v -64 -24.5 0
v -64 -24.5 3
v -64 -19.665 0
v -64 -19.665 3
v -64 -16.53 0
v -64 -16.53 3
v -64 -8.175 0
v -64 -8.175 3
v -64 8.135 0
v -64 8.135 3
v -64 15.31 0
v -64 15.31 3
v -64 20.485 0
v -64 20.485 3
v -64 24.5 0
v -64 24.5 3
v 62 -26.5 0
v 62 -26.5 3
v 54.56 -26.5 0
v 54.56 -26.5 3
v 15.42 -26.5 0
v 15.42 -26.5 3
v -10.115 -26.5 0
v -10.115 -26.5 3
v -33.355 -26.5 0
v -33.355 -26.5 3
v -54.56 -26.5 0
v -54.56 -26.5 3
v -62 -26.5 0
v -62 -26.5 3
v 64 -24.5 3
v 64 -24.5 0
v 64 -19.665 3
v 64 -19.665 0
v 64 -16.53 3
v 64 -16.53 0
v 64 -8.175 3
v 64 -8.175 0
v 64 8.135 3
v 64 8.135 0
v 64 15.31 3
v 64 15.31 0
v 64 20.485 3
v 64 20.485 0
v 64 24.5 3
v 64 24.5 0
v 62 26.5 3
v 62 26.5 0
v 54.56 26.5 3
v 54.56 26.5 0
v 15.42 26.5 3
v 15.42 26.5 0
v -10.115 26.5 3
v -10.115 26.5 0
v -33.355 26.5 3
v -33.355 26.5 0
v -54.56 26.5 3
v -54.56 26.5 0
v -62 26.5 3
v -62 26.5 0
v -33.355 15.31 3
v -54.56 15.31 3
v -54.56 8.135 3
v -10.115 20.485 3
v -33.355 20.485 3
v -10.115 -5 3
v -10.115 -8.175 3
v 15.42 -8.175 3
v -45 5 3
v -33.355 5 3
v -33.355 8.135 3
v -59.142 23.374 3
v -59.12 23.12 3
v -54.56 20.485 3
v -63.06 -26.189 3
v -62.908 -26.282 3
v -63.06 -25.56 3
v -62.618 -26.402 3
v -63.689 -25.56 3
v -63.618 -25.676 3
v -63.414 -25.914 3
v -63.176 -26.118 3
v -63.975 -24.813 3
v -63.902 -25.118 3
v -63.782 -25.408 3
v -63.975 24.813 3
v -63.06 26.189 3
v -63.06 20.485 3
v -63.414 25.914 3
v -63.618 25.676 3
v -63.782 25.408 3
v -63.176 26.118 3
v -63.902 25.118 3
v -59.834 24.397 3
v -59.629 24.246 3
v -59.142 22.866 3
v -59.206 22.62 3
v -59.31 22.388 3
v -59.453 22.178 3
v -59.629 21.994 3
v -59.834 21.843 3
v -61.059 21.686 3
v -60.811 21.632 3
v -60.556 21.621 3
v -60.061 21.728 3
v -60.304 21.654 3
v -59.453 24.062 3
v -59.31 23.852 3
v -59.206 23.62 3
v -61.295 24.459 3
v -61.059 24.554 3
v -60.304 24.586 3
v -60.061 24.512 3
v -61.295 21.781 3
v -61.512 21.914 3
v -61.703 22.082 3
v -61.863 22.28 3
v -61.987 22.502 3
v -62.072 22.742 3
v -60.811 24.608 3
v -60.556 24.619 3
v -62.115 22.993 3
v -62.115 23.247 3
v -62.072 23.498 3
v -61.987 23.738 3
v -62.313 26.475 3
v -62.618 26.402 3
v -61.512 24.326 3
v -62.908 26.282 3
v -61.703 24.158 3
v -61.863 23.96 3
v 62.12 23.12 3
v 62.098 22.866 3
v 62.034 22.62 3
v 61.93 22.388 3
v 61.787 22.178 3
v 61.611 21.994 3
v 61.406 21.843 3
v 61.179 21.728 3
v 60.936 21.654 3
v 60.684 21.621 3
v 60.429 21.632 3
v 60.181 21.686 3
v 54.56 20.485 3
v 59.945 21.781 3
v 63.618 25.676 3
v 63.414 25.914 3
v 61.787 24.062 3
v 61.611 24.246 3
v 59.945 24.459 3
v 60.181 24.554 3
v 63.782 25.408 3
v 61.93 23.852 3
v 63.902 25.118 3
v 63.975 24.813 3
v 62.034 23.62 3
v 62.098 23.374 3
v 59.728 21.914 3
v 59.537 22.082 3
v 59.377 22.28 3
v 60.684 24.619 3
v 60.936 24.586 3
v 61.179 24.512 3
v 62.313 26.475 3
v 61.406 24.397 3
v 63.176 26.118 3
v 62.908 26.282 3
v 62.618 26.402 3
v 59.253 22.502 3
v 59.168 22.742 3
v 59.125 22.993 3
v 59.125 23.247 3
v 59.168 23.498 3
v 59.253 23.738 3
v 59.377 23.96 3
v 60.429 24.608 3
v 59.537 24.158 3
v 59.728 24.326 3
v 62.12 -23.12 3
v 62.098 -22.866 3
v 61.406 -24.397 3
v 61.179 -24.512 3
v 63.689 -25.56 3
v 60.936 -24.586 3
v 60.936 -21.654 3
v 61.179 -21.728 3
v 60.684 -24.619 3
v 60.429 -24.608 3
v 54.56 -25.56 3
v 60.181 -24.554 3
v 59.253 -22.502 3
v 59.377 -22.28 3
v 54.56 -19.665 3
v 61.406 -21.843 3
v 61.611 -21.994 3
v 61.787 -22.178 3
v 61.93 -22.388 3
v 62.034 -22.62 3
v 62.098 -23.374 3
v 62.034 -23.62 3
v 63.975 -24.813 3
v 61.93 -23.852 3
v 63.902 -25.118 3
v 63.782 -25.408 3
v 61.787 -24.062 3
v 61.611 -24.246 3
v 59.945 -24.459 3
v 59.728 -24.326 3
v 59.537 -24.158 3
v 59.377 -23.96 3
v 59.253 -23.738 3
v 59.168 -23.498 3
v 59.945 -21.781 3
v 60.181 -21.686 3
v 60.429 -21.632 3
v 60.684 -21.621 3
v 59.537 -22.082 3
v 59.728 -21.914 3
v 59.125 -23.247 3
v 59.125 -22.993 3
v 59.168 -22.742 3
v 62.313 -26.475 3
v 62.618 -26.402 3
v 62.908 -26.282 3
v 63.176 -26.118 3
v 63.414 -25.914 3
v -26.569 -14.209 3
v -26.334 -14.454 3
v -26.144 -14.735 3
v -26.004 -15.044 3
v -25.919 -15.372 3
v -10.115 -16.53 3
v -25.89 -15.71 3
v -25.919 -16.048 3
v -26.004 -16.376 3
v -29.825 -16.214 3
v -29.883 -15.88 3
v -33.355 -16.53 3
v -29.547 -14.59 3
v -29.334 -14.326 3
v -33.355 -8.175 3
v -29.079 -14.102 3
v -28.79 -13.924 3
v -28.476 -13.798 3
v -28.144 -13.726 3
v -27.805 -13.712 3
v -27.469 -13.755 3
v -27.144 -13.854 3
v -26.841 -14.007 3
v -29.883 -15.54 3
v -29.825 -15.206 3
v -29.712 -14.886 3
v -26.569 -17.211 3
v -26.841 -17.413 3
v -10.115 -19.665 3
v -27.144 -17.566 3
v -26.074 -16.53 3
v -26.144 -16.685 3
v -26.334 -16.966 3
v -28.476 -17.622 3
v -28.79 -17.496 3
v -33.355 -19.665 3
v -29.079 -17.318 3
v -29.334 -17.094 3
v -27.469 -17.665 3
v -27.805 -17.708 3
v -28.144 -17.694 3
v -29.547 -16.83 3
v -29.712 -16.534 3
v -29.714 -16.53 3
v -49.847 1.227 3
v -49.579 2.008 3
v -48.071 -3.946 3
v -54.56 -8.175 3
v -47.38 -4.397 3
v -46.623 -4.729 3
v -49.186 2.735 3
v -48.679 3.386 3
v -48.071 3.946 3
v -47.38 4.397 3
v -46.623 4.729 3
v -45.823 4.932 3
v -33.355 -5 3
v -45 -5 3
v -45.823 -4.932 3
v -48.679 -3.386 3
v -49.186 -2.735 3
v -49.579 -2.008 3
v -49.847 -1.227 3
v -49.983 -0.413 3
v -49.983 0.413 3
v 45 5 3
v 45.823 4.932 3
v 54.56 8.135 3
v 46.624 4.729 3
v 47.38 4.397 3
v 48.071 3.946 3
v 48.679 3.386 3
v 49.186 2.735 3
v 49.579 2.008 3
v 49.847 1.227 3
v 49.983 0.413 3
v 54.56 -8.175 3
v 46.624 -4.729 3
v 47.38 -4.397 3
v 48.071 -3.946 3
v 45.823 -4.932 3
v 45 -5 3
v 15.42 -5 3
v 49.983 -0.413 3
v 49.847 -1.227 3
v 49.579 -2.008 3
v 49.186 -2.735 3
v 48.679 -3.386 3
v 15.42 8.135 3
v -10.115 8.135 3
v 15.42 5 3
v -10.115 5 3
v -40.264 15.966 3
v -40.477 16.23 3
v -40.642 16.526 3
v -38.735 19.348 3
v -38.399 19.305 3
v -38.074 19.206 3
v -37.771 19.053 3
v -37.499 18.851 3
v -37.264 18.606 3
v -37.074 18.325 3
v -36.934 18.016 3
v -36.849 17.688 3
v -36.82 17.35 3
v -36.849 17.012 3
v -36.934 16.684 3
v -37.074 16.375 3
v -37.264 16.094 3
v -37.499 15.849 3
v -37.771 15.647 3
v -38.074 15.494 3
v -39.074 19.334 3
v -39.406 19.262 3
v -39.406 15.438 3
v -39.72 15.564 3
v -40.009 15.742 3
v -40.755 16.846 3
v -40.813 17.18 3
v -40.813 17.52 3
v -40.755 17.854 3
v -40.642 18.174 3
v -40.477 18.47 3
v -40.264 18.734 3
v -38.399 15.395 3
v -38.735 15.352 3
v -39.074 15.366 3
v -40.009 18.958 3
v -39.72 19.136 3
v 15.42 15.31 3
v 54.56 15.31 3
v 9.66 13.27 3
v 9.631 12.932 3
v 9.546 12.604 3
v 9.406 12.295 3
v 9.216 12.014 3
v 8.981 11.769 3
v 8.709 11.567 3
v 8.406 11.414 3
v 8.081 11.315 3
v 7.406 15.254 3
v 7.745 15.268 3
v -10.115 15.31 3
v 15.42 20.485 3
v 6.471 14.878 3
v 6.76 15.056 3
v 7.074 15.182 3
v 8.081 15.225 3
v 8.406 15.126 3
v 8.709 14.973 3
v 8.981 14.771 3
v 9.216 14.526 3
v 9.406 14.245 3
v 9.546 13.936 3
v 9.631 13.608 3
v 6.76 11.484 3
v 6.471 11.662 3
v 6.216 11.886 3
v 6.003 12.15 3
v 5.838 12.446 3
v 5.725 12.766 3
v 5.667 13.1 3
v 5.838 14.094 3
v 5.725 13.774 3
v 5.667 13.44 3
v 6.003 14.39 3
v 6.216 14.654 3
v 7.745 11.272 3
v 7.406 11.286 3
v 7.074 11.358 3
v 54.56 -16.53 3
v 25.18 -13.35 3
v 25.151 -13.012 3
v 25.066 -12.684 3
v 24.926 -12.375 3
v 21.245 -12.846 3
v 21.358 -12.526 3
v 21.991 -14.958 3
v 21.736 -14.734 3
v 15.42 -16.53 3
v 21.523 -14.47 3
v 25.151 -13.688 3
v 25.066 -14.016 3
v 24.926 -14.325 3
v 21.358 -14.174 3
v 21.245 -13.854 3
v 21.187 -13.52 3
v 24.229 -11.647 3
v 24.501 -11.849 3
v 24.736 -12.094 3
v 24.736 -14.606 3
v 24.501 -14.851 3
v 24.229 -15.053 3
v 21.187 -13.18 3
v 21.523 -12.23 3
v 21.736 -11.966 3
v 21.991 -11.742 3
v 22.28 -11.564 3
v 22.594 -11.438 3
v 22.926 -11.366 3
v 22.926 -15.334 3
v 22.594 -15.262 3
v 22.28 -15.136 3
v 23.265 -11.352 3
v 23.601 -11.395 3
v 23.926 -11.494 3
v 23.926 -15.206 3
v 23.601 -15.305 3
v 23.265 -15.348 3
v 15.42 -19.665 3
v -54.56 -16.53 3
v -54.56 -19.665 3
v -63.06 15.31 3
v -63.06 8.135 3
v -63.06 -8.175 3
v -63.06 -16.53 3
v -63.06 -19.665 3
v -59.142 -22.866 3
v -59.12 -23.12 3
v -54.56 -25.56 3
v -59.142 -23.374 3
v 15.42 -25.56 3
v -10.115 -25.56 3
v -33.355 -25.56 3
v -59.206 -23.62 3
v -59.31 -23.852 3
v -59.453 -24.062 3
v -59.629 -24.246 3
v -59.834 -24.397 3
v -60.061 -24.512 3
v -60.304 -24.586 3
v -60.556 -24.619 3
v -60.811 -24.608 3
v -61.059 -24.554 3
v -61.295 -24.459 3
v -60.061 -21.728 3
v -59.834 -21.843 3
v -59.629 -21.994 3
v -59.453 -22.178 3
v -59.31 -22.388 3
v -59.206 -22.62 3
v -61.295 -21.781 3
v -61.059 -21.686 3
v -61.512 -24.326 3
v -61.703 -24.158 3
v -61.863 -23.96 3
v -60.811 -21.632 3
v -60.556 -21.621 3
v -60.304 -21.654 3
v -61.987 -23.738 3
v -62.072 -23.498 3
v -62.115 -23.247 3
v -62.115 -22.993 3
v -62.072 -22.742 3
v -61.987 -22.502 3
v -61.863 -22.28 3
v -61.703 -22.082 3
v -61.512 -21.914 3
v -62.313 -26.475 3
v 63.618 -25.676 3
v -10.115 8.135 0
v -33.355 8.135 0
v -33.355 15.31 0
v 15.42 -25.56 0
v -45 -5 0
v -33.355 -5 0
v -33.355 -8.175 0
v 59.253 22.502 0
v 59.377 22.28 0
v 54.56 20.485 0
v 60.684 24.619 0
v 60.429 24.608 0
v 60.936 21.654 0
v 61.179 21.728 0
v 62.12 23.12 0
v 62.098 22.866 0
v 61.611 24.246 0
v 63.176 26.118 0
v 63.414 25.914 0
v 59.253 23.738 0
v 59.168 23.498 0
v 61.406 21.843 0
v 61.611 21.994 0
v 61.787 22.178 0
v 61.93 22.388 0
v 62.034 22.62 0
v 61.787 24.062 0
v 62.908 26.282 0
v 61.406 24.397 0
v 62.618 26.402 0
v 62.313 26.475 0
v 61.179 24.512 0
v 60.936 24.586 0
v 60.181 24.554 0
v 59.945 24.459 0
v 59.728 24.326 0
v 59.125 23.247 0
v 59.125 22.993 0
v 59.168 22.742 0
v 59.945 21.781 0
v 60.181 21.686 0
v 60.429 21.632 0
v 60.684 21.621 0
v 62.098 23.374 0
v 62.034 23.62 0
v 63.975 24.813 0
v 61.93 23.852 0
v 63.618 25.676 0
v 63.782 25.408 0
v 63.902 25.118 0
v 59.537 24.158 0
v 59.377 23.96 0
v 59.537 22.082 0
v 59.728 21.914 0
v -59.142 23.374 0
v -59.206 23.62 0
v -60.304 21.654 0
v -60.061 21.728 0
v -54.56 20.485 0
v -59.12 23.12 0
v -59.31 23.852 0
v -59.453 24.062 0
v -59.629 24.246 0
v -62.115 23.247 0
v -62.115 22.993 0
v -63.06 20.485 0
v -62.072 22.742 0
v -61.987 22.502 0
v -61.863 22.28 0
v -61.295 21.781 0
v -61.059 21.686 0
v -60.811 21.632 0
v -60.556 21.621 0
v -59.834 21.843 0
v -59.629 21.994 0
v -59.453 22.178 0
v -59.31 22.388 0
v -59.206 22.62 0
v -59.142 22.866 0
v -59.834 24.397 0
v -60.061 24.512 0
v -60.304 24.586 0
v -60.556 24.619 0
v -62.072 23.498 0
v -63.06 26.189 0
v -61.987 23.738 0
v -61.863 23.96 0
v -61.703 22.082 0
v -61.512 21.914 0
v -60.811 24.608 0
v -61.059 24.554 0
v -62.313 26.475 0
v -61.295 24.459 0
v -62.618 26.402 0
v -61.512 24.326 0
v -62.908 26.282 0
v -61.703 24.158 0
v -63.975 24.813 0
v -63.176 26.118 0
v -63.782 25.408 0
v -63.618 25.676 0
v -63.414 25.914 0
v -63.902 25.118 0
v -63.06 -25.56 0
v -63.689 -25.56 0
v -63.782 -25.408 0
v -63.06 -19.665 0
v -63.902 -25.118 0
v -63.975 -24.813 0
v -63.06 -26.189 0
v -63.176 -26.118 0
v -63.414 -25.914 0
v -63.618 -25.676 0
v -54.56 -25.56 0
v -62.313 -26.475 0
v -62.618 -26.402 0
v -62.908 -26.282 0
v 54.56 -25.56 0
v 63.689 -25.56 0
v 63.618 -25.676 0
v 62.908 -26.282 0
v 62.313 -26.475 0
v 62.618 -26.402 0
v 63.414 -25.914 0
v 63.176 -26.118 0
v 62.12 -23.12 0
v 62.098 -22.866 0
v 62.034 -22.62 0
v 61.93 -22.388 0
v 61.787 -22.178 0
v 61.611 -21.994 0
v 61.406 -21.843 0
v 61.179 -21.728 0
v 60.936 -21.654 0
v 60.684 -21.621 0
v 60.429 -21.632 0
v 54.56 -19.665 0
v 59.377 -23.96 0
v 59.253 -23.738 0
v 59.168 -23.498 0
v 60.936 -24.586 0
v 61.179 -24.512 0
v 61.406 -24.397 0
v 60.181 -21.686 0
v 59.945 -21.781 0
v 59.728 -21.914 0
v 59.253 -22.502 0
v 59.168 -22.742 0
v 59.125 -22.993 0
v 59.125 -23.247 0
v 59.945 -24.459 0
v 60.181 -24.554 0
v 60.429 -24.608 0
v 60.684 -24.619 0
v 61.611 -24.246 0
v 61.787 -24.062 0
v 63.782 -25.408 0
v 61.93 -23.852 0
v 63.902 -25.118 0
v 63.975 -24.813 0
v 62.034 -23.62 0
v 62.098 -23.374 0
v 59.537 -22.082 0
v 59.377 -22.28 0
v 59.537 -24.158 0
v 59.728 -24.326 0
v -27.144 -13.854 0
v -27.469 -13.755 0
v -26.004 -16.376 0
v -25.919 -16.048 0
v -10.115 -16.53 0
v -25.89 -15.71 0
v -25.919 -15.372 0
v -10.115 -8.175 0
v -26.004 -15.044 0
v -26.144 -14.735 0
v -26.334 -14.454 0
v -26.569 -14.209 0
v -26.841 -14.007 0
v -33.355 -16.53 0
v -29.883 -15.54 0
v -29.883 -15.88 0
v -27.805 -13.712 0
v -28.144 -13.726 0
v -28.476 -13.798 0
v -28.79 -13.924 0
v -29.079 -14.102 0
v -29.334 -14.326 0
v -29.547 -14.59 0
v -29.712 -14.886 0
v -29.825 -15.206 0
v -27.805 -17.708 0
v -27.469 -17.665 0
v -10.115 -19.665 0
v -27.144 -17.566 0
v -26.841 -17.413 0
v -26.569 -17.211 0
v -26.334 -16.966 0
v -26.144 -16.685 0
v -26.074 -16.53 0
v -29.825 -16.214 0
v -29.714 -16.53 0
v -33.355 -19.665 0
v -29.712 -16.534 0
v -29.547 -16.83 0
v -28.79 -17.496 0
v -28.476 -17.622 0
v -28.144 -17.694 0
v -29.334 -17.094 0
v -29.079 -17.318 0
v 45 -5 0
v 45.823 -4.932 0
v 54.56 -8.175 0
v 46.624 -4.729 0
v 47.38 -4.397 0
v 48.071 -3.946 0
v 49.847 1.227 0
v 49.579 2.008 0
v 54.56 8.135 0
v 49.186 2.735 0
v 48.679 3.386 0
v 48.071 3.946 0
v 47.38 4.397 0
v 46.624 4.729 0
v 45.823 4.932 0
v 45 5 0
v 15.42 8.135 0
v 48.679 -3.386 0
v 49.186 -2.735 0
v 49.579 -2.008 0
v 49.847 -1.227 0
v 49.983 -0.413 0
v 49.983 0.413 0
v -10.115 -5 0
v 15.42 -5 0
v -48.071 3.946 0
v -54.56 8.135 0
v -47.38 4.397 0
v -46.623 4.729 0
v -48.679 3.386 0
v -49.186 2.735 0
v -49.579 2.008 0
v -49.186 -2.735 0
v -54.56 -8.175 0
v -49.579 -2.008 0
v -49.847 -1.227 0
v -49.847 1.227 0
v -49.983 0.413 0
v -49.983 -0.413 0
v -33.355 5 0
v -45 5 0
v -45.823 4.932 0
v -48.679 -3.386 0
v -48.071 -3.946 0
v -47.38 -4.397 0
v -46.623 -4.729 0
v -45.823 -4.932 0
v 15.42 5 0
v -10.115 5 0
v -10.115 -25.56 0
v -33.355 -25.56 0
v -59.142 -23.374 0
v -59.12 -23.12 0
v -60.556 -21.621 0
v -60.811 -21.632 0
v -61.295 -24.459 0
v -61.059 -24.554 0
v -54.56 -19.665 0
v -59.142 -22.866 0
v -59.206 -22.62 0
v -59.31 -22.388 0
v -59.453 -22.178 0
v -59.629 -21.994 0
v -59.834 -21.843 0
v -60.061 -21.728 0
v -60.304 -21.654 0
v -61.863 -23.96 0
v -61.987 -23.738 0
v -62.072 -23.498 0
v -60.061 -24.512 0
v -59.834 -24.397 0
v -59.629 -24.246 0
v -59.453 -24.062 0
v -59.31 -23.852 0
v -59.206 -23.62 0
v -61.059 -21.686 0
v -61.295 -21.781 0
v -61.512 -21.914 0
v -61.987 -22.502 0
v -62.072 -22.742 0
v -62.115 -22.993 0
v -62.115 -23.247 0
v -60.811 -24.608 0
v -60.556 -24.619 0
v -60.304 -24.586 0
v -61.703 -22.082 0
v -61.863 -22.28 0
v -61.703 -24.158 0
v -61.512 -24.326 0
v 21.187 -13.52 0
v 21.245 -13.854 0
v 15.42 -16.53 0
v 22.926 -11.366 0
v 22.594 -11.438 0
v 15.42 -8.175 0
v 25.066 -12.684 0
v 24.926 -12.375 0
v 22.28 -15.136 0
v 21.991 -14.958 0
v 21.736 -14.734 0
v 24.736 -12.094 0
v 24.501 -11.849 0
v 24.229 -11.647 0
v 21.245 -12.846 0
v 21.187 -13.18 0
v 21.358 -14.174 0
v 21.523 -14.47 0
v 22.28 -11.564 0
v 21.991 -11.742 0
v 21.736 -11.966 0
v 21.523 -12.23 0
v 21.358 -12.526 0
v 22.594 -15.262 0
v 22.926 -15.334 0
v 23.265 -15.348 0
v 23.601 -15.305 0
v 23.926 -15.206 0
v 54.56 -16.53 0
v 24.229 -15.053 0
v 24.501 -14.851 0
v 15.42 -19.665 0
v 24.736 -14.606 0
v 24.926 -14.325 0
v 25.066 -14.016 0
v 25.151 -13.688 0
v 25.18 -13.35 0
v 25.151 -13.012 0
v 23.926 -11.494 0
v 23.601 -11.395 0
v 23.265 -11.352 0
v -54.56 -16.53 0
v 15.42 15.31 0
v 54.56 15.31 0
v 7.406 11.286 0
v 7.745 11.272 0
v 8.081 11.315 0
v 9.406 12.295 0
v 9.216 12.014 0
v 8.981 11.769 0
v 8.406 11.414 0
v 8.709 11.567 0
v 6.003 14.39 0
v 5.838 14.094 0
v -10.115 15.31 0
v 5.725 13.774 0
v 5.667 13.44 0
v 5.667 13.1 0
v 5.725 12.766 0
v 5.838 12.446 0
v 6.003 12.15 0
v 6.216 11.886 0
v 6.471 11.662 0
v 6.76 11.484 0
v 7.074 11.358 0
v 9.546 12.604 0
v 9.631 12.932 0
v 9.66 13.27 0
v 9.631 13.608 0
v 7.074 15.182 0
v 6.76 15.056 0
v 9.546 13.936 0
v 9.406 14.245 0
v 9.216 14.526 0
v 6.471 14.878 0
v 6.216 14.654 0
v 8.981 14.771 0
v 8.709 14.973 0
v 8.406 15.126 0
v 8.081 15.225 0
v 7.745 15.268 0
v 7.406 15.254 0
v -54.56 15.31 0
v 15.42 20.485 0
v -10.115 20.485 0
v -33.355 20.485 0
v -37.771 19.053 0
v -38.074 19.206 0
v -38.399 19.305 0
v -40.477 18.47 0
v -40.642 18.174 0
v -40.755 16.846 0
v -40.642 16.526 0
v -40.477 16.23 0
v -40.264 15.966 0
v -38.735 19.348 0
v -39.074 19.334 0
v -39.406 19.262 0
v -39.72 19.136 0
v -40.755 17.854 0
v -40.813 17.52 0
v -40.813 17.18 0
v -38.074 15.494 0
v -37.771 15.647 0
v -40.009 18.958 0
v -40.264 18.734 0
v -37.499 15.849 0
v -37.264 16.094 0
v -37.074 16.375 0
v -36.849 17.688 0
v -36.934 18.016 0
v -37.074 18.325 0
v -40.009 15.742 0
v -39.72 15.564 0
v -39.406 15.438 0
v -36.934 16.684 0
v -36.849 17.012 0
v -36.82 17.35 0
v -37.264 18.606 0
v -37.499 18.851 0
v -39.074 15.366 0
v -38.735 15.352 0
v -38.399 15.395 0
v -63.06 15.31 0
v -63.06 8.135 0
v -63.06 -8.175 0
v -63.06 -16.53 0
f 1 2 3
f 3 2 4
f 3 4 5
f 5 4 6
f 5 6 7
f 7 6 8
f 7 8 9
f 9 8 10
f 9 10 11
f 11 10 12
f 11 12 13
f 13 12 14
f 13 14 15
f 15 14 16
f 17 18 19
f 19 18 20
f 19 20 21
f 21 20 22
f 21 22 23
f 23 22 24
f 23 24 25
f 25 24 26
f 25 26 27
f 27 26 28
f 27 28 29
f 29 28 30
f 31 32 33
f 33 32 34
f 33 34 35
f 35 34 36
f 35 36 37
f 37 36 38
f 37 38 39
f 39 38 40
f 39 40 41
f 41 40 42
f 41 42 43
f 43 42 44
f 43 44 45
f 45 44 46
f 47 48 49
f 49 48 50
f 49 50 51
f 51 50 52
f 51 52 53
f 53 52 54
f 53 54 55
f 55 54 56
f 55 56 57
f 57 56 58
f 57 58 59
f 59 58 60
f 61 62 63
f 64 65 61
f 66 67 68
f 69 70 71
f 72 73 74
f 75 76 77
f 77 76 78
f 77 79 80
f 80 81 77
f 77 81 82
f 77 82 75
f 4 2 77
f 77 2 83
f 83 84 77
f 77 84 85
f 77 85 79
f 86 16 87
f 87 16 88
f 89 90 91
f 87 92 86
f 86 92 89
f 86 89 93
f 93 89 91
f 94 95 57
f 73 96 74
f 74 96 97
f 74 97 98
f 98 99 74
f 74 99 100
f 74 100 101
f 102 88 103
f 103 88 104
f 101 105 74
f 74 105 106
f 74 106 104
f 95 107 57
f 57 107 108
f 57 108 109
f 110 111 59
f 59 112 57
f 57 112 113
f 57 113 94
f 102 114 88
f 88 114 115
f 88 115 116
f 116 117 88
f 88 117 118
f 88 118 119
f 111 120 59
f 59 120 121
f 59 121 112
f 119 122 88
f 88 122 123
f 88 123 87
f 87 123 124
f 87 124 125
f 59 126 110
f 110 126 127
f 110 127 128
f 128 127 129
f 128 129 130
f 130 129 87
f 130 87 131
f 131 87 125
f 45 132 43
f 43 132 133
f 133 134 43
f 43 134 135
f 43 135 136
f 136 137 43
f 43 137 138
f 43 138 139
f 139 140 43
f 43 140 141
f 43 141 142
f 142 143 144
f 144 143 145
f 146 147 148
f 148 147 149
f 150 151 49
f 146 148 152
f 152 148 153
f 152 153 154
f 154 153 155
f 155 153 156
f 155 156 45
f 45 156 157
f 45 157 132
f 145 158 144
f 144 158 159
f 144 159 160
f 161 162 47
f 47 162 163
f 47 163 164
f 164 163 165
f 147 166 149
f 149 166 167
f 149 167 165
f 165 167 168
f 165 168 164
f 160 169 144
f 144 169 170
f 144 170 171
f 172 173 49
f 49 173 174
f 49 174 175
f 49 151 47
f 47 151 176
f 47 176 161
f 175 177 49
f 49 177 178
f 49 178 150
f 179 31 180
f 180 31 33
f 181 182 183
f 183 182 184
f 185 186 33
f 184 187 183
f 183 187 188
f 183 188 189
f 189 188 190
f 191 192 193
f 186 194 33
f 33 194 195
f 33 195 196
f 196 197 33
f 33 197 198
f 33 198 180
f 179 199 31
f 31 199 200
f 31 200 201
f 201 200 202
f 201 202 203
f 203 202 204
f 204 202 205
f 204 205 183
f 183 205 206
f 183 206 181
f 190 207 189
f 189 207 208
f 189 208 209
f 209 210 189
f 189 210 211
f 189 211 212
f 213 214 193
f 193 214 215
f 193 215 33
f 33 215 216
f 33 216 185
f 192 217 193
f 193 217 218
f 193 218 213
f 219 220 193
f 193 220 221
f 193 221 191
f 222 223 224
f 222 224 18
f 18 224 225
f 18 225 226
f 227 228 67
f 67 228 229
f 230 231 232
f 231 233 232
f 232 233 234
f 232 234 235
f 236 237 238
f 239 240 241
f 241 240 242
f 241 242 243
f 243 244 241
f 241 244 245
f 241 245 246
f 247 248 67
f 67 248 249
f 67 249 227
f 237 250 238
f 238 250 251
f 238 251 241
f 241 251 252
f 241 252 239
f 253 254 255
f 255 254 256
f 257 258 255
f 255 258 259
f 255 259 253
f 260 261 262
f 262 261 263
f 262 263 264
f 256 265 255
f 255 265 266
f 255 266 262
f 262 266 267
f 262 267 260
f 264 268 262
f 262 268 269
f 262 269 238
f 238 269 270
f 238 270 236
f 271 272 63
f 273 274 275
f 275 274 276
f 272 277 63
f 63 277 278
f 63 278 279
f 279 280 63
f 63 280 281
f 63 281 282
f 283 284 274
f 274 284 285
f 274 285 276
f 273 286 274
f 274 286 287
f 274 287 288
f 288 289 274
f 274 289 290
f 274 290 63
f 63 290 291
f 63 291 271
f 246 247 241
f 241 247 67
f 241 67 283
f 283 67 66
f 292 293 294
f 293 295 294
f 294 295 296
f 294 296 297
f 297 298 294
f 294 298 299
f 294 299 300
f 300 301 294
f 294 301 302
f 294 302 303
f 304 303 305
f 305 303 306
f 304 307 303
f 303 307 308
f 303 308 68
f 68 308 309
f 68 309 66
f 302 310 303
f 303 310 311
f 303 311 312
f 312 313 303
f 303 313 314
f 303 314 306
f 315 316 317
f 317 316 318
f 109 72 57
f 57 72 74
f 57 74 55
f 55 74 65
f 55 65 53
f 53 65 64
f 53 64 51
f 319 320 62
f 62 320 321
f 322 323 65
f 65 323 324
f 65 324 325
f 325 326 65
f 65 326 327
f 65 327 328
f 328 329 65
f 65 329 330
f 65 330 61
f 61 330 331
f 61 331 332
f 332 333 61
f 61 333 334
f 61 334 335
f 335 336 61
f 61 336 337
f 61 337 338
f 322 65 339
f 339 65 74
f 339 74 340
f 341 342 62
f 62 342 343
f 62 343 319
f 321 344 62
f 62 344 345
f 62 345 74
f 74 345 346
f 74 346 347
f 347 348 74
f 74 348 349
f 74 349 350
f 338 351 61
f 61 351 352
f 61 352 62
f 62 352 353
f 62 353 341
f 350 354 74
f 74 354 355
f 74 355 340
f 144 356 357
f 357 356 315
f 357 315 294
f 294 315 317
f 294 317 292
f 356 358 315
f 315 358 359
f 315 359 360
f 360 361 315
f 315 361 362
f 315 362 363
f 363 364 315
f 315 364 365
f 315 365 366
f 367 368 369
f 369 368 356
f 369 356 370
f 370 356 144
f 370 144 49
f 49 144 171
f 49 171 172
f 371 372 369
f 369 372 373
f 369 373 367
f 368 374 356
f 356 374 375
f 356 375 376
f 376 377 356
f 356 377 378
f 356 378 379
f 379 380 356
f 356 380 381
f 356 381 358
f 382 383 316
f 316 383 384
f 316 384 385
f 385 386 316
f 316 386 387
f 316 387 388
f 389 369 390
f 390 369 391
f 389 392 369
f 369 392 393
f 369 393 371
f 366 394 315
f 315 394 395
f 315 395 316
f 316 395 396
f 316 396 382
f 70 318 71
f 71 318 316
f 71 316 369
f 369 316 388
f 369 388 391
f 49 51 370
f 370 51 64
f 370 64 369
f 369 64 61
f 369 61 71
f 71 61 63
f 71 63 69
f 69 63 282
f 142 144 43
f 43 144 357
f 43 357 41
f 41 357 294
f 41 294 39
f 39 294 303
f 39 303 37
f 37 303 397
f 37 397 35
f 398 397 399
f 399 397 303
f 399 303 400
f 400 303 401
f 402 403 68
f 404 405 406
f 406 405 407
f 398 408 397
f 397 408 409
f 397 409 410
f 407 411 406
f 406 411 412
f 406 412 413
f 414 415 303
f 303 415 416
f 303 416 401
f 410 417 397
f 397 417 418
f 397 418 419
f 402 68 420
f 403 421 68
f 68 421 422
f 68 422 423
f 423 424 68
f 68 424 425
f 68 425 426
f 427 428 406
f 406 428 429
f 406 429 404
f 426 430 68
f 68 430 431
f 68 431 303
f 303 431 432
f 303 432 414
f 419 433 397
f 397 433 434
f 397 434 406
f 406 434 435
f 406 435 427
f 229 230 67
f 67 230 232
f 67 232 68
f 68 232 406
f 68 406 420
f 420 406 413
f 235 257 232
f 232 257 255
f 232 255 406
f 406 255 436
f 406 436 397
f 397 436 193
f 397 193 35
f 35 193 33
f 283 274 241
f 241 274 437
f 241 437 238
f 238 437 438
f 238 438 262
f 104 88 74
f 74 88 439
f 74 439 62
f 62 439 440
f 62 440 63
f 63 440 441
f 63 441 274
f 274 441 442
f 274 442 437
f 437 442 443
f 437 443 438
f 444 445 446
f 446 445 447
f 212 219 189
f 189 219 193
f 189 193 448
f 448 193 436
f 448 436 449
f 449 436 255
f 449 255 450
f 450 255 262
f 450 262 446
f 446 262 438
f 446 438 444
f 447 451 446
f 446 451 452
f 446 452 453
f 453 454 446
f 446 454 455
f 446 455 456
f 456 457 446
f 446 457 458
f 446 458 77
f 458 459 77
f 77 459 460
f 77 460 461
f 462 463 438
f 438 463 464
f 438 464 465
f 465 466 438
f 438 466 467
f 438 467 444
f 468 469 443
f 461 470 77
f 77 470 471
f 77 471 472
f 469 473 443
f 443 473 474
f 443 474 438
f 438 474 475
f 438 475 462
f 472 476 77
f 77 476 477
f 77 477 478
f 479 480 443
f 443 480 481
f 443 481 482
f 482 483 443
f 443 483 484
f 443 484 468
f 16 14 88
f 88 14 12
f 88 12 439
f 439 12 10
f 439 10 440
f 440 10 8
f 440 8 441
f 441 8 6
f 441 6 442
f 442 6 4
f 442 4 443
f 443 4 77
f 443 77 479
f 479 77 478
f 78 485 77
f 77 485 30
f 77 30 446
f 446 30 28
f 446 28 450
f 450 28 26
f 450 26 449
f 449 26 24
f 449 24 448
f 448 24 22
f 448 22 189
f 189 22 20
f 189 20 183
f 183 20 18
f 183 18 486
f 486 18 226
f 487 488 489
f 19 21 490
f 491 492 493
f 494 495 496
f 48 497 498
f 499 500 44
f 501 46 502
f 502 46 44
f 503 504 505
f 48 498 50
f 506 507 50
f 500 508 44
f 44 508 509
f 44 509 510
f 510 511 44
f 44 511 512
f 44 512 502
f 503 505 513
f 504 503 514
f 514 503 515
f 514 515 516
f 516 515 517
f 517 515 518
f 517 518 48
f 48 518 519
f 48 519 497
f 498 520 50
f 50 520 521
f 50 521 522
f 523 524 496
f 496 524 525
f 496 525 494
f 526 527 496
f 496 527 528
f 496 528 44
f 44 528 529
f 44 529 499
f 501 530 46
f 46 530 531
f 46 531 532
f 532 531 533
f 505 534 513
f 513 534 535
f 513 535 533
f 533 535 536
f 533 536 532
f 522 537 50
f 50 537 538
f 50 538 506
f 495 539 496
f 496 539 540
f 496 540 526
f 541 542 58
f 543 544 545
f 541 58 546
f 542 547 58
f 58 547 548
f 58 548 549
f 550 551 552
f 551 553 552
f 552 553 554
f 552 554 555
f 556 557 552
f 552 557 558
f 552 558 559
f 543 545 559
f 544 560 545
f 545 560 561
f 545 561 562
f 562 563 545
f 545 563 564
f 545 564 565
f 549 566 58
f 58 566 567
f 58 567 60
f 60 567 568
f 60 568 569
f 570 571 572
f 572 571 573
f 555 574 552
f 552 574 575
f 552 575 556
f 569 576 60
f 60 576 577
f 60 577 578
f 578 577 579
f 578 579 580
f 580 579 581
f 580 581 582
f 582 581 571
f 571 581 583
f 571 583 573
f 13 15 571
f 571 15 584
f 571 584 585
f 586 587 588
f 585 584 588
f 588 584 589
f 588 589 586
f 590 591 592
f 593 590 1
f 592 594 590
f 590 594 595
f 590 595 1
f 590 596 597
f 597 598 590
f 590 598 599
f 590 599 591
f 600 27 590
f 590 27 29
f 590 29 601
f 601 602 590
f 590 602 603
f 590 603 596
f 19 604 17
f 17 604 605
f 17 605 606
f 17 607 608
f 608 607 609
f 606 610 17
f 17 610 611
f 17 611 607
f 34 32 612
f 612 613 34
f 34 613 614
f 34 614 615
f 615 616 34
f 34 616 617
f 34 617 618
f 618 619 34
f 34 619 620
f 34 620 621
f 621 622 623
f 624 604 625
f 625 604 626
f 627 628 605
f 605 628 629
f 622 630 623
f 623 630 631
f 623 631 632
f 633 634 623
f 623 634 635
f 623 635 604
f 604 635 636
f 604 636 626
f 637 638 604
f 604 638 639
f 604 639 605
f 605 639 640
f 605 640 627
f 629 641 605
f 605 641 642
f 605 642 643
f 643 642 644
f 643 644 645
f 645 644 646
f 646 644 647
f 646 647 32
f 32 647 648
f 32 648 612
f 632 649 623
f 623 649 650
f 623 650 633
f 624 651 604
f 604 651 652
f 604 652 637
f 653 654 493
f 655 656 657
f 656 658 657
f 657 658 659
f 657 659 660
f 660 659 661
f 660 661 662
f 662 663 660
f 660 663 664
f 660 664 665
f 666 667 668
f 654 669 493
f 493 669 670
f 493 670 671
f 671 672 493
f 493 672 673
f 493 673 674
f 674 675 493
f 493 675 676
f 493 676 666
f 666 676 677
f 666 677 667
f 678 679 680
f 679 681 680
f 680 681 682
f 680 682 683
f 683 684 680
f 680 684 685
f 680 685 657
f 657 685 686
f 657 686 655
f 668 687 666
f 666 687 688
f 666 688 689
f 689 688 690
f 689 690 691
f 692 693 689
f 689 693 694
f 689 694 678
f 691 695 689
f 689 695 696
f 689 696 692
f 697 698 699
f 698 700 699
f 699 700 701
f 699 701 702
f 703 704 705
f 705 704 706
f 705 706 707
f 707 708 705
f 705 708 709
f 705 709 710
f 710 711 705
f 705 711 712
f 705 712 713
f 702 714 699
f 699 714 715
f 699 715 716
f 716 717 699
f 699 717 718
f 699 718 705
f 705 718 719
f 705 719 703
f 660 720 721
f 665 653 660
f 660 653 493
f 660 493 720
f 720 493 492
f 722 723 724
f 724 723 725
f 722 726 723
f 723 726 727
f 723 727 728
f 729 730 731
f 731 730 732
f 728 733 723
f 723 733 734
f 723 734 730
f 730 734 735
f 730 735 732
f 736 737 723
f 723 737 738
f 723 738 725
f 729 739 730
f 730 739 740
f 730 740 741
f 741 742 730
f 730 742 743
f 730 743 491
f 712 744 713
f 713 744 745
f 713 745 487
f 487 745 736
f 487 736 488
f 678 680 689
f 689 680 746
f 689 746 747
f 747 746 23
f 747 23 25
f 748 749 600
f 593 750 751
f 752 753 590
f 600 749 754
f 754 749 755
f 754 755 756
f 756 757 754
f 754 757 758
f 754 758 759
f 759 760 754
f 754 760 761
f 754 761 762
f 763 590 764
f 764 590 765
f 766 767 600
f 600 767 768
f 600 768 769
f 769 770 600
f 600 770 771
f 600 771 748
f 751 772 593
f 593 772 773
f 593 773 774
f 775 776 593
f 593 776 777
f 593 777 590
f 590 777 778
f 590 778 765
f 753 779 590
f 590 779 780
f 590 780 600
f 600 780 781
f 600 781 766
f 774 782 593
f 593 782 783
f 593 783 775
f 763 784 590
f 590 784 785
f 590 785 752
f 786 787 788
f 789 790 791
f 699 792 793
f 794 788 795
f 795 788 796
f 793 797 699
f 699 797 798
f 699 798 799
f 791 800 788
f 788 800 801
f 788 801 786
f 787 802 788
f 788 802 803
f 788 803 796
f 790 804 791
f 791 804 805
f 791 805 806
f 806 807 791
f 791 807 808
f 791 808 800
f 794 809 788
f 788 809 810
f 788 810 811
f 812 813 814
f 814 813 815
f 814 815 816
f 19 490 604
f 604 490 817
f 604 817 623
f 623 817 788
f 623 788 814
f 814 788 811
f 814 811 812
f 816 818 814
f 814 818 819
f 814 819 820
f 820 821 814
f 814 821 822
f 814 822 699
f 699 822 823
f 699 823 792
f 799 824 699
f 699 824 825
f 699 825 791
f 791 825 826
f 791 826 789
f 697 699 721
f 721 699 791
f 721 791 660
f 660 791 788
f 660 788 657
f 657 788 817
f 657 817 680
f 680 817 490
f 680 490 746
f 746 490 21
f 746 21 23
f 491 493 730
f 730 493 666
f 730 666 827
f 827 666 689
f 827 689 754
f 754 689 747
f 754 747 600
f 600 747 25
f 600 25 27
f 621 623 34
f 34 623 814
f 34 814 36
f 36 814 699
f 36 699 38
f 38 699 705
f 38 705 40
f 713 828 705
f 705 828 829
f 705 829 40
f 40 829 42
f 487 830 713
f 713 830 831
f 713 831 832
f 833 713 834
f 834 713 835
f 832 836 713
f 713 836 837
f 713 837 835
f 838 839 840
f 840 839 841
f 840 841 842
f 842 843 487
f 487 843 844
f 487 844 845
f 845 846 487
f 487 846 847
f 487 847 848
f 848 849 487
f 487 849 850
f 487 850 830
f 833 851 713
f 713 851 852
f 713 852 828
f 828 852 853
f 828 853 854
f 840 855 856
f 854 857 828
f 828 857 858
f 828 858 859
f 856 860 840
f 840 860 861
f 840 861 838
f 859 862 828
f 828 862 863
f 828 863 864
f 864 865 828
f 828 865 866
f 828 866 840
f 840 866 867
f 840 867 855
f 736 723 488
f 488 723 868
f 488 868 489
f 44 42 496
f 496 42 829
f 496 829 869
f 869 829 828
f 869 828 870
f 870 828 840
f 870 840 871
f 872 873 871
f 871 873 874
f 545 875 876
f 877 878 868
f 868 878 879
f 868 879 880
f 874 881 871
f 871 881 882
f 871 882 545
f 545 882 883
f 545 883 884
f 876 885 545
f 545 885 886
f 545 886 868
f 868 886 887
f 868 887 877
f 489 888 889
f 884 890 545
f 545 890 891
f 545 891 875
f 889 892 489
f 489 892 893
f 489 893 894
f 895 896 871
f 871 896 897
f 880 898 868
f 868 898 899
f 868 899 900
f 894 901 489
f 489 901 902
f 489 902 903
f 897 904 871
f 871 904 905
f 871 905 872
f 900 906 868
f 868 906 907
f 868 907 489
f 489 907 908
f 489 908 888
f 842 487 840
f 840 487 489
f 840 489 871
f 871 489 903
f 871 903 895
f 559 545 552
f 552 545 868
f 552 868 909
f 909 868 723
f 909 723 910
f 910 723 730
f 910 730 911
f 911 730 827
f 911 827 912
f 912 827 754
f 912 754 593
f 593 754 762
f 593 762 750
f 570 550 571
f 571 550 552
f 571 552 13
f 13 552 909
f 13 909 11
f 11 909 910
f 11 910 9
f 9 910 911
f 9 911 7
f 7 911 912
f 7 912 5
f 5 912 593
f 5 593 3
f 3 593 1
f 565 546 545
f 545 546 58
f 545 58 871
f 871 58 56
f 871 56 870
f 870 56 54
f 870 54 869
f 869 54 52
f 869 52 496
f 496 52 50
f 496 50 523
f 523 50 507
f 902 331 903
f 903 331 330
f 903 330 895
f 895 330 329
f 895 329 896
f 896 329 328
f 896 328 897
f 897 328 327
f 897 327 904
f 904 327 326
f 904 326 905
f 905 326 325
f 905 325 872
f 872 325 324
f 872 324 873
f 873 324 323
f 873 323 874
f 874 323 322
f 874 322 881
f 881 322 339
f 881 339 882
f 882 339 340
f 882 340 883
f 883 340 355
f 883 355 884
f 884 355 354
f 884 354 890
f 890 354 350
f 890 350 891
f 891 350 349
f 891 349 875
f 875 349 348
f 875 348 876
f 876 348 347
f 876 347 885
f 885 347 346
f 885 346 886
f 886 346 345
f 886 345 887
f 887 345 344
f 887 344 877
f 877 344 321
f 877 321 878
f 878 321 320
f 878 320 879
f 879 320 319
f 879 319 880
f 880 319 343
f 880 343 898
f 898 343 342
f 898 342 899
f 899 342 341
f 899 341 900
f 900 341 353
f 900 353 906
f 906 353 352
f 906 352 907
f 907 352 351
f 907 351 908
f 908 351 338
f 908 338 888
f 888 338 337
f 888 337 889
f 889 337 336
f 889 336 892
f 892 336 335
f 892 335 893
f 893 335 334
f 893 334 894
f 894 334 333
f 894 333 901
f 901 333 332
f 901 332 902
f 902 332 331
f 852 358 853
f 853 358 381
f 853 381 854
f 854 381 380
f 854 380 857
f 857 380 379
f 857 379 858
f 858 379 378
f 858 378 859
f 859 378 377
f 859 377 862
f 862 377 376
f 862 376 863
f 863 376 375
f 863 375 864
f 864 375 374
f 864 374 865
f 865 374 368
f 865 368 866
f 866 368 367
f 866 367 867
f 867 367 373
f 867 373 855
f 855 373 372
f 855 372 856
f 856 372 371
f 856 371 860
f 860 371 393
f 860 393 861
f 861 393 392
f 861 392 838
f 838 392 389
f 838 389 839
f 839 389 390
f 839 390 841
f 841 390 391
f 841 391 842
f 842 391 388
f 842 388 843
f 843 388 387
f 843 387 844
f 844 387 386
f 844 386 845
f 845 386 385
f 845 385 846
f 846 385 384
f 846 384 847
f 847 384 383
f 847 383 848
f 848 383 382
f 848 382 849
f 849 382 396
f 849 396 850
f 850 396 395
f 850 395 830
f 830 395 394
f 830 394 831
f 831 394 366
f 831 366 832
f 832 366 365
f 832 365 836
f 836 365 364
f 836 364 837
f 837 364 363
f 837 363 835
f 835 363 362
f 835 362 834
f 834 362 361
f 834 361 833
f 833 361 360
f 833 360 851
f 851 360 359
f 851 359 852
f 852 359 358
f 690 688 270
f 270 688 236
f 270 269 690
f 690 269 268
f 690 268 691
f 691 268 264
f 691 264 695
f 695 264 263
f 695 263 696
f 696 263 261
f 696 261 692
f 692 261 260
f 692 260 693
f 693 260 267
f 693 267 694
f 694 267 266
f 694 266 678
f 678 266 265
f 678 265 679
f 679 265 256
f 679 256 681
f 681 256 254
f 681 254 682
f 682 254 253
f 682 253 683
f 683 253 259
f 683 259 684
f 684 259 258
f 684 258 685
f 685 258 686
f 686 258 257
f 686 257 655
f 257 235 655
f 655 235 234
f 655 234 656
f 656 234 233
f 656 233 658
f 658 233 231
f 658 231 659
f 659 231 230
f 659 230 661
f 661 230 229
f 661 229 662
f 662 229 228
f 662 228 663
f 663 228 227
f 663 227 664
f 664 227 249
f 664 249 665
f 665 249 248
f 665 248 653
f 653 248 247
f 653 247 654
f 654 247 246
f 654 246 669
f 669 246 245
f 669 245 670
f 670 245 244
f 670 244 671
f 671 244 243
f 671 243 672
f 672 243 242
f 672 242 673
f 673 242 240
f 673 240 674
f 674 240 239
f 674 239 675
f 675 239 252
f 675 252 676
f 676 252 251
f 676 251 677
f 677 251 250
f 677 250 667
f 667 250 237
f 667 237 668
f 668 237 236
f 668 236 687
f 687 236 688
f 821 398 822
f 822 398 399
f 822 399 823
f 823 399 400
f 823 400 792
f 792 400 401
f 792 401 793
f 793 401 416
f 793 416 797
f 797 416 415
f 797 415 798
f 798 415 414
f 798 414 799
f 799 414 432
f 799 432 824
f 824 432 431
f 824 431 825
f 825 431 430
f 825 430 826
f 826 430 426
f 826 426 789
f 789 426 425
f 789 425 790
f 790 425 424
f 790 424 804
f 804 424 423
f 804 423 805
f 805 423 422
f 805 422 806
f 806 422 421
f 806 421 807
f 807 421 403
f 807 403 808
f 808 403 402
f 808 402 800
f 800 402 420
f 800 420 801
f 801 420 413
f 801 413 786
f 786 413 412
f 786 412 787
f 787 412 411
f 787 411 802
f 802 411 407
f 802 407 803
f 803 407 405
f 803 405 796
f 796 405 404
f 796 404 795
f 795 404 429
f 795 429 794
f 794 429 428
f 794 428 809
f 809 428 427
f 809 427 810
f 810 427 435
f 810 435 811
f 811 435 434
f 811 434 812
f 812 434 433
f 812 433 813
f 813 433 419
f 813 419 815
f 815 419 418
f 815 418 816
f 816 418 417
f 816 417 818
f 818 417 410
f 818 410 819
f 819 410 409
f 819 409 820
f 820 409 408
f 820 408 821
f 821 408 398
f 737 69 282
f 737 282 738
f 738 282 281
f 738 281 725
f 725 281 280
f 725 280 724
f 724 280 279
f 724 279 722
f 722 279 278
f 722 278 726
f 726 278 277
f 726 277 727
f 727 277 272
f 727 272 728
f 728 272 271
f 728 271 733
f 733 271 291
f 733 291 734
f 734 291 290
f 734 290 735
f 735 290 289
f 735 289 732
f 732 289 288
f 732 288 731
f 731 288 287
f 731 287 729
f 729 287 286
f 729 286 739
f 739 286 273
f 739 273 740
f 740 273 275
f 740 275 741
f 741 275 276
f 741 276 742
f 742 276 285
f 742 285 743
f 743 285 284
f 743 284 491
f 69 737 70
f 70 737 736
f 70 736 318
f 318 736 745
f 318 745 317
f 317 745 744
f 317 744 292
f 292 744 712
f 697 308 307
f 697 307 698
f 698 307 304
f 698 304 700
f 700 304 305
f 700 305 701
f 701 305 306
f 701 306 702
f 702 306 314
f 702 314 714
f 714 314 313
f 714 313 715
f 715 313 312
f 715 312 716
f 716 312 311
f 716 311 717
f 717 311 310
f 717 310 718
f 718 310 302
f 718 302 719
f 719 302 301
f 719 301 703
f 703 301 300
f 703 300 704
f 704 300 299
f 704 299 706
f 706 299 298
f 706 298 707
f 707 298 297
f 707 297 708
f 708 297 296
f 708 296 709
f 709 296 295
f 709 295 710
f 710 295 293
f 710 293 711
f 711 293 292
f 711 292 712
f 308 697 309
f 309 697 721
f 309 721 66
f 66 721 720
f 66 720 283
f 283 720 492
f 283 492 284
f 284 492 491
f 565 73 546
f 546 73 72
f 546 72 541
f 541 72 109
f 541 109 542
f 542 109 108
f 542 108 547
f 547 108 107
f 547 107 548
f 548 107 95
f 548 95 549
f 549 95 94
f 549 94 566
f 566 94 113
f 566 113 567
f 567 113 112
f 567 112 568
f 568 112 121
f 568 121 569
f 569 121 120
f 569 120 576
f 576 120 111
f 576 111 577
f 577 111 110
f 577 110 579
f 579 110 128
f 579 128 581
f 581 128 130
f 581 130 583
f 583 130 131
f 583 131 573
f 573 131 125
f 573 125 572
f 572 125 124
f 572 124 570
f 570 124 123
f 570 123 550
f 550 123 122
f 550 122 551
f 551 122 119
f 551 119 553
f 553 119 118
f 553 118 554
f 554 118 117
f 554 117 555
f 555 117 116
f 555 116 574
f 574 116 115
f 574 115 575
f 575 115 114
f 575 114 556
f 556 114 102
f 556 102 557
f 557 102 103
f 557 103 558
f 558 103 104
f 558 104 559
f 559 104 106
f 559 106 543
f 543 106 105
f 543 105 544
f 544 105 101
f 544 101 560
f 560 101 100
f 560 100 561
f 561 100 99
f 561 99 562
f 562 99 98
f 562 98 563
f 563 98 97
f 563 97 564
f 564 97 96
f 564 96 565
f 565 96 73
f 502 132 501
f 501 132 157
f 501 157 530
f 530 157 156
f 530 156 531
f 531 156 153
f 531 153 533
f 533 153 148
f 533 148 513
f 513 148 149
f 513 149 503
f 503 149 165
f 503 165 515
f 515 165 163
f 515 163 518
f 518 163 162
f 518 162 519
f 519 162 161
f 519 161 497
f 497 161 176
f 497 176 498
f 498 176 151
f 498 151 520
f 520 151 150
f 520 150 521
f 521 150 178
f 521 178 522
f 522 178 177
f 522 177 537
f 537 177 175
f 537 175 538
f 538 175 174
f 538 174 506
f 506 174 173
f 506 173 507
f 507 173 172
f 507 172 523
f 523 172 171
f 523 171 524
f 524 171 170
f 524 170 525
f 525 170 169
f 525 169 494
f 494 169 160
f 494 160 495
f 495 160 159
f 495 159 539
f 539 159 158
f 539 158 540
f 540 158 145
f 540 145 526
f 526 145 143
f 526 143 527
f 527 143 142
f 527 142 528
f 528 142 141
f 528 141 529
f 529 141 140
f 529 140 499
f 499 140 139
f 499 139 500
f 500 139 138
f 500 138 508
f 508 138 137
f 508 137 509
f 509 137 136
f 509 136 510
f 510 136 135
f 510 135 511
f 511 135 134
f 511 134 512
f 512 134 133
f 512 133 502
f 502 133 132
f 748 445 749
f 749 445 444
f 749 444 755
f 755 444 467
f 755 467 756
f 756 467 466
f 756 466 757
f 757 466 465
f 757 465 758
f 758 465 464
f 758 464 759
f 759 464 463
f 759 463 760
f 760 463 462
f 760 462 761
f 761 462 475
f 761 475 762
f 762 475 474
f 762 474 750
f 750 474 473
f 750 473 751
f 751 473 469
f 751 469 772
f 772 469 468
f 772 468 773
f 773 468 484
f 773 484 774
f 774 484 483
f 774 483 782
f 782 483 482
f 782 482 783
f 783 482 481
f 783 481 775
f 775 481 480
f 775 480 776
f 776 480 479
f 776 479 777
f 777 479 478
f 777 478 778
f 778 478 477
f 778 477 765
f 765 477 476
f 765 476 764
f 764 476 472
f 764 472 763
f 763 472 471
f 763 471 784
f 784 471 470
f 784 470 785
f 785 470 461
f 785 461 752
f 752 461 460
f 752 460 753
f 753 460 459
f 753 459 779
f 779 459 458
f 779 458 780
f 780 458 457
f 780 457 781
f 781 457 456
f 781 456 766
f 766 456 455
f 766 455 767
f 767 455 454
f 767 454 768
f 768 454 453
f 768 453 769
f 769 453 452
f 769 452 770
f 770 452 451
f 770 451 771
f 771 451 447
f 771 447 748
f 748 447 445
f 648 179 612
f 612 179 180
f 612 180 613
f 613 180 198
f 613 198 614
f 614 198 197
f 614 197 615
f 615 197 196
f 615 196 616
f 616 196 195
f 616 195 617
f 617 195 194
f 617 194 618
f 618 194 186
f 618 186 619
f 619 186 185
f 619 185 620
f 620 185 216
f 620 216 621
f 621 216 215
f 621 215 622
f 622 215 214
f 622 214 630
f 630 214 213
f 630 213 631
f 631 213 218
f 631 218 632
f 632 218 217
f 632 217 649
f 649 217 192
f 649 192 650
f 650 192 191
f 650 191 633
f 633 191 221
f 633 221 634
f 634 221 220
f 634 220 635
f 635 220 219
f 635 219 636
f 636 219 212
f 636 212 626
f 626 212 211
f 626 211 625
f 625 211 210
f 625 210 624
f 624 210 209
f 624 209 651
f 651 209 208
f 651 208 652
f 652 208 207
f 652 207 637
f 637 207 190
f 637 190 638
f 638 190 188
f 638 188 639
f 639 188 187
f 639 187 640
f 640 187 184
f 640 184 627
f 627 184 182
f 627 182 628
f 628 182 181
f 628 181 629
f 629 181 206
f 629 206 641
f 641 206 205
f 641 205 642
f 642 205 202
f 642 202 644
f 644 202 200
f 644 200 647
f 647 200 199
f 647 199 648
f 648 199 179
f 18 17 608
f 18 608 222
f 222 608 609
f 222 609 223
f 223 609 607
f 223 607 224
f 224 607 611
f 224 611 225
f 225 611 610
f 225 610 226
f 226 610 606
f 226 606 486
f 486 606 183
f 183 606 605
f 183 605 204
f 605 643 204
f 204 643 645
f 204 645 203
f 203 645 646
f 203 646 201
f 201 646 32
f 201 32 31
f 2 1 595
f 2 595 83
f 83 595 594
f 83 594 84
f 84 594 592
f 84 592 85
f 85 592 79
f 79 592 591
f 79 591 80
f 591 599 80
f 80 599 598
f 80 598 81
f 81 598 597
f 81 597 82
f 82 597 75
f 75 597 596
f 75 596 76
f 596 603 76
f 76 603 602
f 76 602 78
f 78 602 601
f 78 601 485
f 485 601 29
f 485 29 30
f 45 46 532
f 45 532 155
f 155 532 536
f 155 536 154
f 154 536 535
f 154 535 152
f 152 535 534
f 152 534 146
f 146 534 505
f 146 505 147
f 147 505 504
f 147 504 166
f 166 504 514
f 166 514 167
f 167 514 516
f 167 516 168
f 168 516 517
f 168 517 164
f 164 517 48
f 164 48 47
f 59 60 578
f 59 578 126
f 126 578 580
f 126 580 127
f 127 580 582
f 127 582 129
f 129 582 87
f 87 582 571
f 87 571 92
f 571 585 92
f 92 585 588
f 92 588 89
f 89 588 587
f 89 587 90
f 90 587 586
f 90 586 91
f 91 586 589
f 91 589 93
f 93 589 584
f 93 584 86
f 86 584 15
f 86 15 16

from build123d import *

# Parameters (mm, degrees)
ESQUISSE1_W             = 128
ESQUISSE1_H             = 53
BOSS_EXTRU_1_DEPTH      = 3
ESQUISSE2_R             = 2
ENL_V_MAT_EXTRU_1_DEPTH = 3
ENL_V_MAT_EXTRU_2_DEPTH = 3
ESQUISSE5_R             = 1.5
ENL_V_MAT_EXTRU_3_DEPTH = 3
CONG_1_R                = 2


with BuildPart() as part:
    # Esquisse1 → Boss.-Extru.1 (new body)
    with BuildSketch(Plane.XY):
        Rectangle(ESQUISSE1_W, ESQUISSE1_H)
    extrude(amount=BOSS_EXTRU_1_DEPTH)

    # Esquisse2 → Enlèv. mat.-Extru.1 (cut)
    with BuildSketch(Plane.XY.offset(3)):
        with Locations((-38.82, 17.35)):
            Circle(ESQUISSE2_R)
        with Locations((7.66, 13.27)):
            Circle(ESQUISSE2_R)
        with Locations((-27.89, -15.71)):
            Circle(ESQUISSE2_R)
        with Locations((23.18, -13.35)):
            Circle(ESQUISSE2_R)
    extrude(amount=-ENL_V_MAT_EXTRU_1_DEPTH, mode=Mode.SUBTRACT)

    # Esquisse3 → Enlèv. mat.-Extru.2 (cut)
    with BuildSketch(Plane.XY.offset(3)):
        with BuildLine():
            Line((-45.000000383, 5), (45.000000383, 5))
            ThreePointArc((45.000000383, 5), (50.000000383, 0), (45.000000383, -5))
            Line((45.000000383, -5), (-44.999999617, -5))
            ThreePointArc((-44.999999617, -5), (-49.999999617, -3.83e-07), (-45.000000383, 5))
        make_face()
    extrude(amount=-ENL_V_MAT_EXTRU_2_DEPTH, mode=Mode.SUBTRACT)

    # Esquisse5 → Enlèv. mat.-Extru.3 (cut)
    with BuildSketch(Plane.XY.offset(3)):
        with Locations((-60.62, 23.12)):
            Circle(ESQUISSE5_R)
        with Locations((60.62, 23.12)):
            Circle(ESQUISSE5_R)
        with Locations((-60.62, -23.12)):
            Circle(ESQUISSE5_R)
        with Locations((60.62, -23.12)):
            Circle(ESQUISSE5_R)
    extrude(amount=-ENL_V_MAT_EXTRU_3_DEPTH, mode=Mode.SUBTRACT)

    # Congé1
    cong_1_edges = [part.edges().sort_by_distance(p)[0] for p in [
        (-64, 26.5, 1.5),
        (64, 26.5, 1.5),
        (64, -26.5, 1.5),
        (-64, -26.5, 1.5),
    ]]
    fillet(cong_1_edges, radius=CONG_1_R)


solid = part.part
